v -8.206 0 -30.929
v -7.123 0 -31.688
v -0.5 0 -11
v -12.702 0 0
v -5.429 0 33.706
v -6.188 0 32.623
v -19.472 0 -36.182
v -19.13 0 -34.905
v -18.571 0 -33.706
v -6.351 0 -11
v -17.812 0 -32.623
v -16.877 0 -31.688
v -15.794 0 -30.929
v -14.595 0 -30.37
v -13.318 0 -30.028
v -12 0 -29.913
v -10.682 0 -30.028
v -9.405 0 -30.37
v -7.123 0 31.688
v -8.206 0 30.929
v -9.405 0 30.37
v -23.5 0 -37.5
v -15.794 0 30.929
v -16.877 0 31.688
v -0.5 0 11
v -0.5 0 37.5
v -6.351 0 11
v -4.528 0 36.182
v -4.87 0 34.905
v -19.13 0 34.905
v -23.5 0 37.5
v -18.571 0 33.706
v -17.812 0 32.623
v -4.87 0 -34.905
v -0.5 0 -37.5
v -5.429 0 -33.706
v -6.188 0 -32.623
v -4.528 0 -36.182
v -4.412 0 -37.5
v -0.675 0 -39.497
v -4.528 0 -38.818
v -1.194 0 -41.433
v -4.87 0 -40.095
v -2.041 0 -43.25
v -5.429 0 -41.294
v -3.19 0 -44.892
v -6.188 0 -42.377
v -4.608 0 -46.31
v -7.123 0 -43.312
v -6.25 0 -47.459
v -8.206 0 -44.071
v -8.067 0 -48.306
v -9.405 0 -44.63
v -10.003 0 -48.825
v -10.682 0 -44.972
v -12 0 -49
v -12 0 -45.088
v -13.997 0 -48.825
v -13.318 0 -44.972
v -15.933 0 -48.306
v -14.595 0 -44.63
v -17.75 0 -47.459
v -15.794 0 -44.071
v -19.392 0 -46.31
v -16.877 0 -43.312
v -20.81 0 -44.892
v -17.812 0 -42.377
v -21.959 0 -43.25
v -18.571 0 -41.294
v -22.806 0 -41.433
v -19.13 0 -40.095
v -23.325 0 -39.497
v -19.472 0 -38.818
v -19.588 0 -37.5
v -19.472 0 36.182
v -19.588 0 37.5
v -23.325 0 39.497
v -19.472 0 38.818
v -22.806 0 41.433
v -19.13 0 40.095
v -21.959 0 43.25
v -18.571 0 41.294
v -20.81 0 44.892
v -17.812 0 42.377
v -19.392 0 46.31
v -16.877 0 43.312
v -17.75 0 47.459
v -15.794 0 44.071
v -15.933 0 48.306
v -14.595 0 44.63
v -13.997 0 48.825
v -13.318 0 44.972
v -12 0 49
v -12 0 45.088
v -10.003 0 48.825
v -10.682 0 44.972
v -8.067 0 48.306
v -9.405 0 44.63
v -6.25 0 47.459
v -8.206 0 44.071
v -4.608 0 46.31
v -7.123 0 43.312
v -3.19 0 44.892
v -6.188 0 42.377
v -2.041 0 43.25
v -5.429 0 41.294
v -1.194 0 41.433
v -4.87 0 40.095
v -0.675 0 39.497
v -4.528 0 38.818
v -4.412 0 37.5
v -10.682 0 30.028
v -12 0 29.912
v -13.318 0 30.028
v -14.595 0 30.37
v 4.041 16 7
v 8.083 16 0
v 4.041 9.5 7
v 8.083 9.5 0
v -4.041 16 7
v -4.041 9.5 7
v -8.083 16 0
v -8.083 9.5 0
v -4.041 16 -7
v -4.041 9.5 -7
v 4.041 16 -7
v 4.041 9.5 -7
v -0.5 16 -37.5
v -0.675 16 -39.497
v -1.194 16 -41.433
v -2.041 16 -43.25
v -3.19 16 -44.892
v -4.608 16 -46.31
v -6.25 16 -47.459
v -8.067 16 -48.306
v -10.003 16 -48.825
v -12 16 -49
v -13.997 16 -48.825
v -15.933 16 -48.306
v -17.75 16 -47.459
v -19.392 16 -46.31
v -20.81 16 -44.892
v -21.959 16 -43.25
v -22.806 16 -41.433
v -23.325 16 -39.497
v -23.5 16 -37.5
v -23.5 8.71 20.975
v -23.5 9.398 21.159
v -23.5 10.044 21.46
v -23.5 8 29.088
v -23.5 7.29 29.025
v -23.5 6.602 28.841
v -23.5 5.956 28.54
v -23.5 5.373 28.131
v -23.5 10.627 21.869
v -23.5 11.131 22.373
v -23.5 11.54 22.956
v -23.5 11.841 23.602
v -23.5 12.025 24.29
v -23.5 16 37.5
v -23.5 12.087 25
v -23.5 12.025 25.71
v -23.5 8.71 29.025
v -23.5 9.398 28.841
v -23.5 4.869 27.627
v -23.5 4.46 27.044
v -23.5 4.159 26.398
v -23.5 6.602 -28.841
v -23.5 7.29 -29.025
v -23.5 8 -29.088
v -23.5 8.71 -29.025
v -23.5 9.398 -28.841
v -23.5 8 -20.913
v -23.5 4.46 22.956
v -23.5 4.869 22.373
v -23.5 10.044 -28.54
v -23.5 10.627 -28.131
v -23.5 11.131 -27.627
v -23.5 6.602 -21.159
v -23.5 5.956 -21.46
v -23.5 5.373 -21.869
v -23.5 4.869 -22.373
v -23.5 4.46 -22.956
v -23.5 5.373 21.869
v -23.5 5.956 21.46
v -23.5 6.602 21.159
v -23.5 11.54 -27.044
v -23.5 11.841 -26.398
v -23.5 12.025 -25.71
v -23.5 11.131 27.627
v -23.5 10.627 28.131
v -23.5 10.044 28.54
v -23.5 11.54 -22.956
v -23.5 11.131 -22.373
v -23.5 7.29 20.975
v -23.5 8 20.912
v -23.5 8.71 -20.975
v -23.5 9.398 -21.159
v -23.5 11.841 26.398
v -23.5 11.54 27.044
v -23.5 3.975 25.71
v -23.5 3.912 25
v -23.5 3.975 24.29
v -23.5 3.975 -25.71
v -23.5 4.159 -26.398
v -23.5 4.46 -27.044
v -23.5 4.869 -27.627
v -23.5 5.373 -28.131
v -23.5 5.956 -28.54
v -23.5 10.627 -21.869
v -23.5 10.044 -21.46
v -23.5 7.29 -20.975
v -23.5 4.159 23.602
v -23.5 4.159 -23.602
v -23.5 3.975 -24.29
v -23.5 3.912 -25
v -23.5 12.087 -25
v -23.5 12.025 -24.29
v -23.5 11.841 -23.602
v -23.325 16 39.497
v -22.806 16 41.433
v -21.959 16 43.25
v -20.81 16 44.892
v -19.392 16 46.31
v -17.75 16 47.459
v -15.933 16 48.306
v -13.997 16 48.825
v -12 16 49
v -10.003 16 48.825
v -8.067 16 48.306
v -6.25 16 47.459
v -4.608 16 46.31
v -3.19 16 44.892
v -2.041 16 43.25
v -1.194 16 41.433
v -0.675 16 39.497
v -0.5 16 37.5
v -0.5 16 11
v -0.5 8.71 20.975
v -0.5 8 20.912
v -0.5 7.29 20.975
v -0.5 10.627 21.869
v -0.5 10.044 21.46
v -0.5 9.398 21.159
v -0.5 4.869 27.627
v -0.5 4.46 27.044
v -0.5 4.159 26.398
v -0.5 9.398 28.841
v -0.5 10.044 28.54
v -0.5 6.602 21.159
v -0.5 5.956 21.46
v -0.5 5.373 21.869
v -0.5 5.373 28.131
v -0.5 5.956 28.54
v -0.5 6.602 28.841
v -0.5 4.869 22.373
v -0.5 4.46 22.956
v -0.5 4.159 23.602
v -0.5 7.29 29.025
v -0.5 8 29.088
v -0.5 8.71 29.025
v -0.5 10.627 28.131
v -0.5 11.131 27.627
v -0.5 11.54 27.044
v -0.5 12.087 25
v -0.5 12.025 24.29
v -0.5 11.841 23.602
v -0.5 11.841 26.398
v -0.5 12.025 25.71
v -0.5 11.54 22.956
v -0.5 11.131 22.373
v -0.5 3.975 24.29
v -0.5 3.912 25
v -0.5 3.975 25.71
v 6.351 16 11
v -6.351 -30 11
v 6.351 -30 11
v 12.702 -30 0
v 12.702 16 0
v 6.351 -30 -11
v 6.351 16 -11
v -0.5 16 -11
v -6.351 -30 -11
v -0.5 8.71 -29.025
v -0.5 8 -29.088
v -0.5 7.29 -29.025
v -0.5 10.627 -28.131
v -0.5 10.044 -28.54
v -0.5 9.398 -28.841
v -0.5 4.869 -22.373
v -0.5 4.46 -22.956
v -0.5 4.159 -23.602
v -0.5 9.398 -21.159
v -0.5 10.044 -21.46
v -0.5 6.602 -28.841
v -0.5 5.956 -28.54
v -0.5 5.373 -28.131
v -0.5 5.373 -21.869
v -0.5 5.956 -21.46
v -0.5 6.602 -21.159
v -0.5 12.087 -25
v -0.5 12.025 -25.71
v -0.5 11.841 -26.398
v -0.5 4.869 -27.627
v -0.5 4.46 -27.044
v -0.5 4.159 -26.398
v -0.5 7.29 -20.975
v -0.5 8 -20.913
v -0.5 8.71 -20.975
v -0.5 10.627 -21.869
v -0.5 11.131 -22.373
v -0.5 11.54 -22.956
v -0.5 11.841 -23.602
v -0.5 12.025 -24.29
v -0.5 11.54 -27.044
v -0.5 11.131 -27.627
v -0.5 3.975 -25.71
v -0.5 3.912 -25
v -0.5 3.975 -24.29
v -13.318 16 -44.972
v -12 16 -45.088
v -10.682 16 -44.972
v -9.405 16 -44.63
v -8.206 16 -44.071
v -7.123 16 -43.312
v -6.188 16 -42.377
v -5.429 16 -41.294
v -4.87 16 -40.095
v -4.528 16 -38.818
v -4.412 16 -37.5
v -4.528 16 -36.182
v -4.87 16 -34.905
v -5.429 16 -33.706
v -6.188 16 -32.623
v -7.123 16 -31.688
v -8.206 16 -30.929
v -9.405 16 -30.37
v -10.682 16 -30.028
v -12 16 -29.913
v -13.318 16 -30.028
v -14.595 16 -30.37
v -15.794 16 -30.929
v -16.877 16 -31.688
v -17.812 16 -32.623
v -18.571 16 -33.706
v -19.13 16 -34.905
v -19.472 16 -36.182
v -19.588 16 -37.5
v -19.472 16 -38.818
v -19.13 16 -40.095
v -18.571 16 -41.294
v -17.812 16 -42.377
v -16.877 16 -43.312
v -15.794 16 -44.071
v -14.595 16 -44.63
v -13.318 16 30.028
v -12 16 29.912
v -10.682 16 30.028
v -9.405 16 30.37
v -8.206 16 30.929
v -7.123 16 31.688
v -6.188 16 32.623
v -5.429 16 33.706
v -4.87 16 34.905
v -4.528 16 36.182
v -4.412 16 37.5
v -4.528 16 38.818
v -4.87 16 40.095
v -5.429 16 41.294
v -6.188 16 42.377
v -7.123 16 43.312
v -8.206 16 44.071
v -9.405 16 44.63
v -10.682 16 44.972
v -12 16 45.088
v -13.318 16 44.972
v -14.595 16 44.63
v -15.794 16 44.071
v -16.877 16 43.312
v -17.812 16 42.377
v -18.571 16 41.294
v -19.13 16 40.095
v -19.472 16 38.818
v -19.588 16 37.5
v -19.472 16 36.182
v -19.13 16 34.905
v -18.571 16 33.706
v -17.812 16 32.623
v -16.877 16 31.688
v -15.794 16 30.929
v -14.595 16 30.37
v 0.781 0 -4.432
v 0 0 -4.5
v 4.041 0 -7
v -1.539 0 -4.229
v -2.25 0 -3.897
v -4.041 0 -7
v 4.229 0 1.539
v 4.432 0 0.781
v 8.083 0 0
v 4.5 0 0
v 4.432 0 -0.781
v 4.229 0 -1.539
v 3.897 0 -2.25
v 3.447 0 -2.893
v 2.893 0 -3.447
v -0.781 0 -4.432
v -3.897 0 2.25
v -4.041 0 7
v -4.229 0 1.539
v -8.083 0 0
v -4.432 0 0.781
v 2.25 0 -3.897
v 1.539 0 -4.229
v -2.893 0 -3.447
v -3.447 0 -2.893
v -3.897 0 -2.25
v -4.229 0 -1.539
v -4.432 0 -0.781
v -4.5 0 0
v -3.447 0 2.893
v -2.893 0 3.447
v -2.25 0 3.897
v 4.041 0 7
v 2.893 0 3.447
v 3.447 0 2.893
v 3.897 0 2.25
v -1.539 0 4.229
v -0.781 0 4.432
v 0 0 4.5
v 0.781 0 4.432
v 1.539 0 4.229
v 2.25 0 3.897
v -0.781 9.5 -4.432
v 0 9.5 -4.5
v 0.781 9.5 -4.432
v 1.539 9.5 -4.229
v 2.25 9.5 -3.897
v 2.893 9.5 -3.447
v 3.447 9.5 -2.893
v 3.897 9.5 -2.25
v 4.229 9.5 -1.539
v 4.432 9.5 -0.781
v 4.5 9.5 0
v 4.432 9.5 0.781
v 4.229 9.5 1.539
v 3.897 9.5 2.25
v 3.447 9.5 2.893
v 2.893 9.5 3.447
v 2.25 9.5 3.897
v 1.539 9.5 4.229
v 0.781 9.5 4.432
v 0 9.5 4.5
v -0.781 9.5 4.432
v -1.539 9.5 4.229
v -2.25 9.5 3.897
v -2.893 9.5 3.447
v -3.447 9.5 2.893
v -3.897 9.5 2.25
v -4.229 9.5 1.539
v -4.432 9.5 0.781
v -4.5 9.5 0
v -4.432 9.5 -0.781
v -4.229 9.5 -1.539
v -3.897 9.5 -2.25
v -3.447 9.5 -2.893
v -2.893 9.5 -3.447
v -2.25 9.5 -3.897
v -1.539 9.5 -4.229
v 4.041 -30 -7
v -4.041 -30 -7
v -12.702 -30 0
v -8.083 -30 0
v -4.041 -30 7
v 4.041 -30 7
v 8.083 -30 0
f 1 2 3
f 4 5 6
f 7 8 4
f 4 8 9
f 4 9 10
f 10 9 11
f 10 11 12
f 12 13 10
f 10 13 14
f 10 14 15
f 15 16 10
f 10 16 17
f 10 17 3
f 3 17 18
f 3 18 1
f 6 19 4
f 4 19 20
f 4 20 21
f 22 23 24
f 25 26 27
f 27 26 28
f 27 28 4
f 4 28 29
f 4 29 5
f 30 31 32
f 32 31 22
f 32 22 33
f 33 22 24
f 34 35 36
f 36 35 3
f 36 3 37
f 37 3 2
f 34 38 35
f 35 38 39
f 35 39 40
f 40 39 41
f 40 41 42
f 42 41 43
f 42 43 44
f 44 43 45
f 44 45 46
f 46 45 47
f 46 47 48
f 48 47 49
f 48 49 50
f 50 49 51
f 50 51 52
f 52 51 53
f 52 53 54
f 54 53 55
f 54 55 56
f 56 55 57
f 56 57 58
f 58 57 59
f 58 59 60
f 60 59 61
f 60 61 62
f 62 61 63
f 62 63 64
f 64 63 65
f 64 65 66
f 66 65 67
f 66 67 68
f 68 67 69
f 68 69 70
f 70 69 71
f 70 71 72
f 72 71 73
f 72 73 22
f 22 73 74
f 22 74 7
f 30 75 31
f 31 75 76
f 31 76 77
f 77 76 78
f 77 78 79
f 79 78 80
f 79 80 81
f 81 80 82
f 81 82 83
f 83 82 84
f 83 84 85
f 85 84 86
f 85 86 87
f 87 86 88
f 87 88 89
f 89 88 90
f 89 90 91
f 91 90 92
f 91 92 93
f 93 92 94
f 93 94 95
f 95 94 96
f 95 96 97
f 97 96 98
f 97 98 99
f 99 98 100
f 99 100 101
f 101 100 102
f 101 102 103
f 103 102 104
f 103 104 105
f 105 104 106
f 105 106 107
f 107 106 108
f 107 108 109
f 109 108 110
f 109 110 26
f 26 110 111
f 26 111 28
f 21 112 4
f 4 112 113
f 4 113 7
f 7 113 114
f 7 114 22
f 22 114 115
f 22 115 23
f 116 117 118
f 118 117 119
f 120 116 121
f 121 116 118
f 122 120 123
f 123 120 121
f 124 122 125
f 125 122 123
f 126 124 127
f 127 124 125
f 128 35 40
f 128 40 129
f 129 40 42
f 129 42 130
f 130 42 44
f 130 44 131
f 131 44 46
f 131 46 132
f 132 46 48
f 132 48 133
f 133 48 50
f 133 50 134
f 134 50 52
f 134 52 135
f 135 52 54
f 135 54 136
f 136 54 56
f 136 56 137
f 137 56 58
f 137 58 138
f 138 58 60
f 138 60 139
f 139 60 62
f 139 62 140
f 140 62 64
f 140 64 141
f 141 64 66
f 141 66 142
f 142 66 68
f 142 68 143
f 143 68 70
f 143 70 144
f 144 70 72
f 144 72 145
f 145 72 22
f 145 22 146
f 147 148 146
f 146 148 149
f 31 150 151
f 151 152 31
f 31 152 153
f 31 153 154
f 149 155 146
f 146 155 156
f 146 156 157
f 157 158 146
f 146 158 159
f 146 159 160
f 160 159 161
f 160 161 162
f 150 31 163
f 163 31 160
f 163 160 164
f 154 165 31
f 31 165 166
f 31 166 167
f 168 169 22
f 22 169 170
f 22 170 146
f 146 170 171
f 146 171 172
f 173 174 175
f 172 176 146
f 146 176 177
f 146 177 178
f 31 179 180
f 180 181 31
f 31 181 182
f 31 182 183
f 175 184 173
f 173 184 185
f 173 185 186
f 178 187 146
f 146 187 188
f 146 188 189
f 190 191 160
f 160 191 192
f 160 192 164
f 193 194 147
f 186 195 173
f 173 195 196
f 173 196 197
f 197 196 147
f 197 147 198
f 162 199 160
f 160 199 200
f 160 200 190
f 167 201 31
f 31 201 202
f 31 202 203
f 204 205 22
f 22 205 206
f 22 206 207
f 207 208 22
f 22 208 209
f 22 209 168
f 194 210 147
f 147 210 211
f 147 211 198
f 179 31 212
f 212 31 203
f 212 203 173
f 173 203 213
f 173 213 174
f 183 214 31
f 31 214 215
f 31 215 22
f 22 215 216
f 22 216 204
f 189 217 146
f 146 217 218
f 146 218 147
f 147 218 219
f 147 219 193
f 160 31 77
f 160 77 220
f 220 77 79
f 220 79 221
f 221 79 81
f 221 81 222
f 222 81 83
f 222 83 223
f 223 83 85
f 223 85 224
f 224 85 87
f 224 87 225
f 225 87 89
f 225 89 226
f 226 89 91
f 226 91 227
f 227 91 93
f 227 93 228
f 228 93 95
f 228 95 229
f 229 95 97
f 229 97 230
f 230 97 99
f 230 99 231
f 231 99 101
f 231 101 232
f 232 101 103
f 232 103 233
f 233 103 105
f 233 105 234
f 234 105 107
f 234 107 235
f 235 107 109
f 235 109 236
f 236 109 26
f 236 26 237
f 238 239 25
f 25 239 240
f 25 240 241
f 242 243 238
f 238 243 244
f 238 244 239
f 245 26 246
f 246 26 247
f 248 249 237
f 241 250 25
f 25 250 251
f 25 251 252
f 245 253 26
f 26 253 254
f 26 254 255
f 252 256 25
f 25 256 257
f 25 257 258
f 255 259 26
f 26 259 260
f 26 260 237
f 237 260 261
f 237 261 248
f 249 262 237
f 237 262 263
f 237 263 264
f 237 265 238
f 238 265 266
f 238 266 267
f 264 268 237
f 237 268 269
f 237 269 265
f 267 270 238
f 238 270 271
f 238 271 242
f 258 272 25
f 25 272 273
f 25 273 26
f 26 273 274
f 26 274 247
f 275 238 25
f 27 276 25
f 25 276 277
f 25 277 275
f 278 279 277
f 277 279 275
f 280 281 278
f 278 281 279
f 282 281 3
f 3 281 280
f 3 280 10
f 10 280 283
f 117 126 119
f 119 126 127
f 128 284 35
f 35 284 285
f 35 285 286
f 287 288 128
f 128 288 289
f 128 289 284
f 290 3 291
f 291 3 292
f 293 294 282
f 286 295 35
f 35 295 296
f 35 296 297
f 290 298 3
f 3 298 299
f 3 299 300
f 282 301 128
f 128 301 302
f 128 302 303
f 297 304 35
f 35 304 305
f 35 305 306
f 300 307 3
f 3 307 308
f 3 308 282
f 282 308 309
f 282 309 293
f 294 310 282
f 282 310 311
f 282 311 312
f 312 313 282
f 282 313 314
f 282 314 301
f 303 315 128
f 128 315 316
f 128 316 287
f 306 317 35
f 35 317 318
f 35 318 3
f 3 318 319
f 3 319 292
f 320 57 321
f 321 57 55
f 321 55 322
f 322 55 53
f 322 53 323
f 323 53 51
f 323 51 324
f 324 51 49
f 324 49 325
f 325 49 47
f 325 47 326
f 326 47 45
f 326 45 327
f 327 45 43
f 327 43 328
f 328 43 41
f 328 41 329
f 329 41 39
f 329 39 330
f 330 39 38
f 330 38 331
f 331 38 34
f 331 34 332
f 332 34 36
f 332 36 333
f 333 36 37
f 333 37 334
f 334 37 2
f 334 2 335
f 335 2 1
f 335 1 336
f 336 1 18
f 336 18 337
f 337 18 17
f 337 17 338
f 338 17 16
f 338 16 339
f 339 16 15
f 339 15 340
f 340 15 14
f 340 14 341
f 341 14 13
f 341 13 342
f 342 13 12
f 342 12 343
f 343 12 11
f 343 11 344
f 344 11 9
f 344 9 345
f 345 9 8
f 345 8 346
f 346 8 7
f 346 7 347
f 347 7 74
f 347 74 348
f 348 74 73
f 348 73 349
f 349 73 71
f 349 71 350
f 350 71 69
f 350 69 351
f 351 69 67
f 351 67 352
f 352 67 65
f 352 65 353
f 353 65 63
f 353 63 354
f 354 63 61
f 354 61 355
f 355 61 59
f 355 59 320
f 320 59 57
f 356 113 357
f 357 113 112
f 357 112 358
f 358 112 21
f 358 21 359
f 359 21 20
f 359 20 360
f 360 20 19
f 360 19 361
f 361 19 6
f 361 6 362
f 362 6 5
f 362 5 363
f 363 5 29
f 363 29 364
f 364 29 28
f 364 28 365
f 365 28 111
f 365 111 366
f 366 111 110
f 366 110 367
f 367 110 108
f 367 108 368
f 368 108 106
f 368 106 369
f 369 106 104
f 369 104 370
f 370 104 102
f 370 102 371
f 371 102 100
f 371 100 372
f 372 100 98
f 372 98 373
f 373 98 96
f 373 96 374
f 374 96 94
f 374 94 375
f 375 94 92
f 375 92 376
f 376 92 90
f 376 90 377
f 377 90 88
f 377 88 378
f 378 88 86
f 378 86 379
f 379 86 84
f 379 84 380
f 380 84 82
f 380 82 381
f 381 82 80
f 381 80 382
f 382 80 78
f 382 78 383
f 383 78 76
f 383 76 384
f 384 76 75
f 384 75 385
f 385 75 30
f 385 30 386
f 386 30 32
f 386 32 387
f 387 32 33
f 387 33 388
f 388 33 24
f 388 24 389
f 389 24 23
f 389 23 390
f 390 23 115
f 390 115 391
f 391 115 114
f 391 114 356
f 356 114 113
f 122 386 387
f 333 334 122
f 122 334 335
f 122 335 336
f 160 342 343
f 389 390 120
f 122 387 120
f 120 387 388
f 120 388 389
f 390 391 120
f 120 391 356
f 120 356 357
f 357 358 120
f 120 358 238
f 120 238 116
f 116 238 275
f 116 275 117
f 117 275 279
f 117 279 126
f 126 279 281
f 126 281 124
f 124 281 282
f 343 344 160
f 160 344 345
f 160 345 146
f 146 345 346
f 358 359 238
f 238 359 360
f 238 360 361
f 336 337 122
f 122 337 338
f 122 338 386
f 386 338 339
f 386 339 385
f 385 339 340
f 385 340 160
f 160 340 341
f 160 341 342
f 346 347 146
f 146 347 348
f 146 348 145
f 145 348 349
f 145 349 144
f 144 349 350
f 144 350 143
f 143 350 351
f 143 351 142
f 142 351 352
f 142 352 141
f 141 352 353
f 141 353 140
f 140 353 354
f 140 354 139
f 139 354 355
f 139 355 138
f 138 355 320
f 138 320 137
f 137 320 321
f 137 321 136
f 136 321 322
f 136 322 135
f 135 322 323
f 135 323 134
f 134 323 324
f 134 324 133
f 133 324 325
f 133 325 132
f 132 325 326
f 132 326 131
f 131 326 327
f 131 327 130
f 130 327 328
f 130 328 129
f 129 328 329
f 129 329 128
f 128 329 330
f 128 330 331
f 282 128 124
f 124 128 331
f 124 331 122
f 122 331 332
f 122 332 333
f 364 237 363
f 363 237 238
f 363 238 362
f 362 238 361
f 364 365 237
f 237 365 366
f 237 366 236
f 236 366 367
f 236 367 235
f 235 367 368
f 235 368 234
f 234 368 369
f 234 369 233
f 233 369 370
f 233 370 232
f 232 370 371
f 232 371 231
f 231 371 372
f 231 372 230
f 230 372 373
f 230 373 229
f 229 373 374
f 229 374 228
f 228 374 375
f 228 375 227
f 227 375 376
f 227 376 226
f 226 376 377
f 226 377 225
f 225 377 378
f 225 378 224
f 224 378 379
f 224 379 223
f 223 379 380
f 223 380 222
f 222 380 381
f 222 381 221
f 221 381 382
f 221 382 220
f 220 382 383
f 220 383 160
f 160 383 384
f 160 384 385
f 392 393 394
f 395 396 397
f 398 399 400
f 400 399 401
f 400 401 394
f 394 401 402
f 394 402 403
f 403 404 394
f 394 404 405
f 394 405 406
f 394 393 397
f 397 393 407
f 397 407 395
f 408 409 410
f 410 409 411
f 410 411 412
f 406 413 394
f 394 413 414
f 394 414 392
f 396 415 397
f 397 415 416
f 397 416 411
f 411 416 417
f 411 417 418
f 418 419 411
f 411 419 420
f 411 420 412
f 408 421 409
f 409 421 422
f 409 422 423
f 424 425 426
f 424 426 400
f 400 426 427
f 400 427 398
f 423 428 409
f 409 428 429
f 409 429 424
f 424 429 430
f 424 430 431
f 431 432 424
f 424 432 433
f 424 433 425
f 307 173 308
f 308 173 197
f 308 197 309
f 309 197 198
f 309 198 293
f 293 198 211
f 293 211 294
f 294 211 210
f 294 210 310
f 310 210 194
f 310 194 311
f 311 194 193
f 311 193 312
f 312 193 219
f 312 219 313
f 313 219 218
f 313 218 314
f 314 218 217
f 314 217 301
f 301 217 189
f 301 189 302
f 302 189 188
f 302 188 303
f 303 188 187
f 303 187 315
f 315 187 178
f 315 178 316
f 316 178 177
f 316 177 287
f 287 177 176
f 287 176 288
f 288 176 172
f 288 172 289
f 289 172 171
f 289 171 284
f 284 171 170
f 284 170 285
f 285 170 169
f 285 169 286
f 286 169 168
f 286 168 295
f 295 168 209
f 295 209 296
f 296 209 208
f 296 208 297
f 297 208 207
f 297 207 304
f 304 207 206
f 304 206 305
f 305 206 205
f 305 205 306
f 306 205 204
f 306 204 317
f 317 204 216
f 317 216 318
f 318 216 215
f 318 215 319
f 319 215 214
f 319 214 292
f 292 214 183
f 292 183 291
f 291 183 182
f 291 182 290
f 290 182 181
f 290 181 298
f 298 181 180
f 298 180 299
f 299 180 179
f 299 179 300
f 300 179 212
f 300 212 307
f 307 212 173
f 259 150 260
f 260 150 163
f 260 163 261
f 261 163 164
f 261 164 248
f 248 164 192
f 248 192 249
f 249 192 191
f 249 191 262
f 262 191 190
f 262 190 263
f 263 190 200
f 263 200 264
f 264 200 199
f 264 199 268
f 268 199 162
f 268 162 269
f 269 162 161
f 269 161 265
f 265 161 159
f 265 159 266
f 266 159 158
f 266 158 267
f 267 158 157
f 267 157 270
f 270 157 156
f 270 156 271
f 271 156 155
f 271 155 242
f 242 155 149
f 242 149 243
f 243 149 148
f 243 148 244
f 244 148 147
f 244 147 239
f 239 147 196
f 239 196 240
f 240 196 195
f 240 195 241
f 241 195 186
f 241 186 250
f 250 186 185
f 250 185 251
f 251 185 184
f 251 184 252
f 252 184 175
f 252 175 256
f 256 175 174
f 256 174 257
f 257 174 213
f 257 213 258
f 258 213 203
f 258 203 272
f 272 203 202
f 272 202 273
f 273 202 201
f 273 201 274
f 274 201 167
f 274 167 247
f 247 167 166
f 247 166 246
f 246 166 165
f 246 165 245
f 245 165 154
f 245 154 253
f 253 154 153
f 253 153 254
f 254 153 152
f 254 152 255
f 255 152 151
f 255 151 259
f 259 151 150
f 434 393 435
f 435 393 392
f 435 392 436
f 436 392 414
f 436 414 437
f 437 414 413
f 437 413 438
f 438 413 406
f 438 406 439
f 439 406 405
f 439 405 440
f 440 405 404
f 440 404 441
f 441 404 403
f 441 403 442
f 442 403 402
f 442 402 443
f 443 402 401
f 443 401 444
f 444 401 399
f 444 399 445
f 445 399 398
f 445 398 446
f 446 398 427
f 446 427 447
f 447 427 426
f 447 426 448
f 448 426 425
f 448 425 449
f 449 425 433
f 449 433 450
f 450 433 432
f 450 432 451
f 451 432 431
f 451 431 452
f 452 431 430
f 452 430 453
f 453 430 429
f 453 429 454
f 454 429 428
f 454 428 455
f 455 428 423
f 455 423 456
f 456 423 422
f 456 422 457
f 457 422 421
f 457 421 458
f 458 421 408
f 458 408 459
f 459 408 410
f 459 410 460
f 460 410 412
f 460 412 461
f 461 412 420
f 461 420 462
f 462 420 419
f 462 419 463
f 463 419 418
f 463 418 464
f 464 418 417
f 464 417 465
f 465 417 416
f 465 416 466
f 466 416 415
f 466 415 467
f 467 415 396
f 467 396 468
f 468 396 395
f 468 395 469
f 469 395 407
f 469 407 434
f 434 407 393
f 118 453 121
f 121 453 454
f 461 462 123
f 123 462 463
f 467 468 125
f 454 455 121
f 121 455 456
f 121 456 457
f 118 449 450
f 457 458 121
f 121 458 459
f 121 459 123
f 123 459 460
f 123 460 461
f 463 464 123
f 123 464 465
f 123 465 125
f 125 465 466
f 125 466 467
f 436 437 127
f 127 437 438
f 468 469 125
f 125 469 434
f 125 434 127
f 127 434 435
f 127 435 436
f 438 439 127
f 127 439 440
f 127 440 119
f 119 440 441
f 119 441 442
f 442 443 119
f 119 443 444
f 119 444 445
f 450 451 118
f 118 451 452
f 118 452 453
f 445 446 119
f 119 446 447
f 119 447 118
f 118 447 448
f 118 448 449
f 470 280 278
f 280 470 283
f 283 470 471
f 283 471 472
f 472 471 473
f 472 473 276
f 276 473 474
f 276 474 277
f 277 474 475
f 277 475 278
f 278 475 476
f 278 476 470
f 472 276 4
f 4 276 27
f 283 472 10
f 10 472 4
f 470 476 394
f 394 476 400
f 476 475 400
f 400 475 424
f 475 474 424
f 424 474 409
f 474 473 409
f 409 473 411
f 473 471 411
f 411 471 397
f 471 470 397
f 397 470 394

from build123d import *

# Parameters (mm, degrees)
SKETCH1_R           = 7.5875
BOSS_EXTRUDE1_DEPTH = 16
SKETCH2_R           = 4.0875
CUT_EXTRUDE1_DEPTH  = 63.988598267
SKETCH1_6_R         = 4.5
BOSS_EXTRUDE2_DEPTH = 9.5
BOSS_EXTRUDE3_DEPTH = 30


with BuildPart() as part:
    # Sketch1 → Boss-Extrude1 (new body)
    with BuildSketch(Plane(origin=(0, 0, 0), x_dir=(1, 0, 0), z_dir=(0, 1, 0))):
        with BuildLine():
            Line((-23.5, -33), (-23.5, 33))
            Line((-23.5, 33), (-23.5, 37.5))
            ThreePointArc((-23.5, 37.5), (-12, 49), (-0.5, 37.5))
            Line((-0.5, 37.5), (-0.5, 33))
            Line((-0.5, 33), (-0.5, 11))
            Line((-0.5, 11), (6.350852961, 11))
            Line((6.350852961, 11), (12.701705922, 0))
            Line((12.701705922, 0), (6.350852961, -11))
            Line((6.350852961, -11), (-0.5, -11))
            Line((-0.5, -11), (-0.5, -33))
            Line((-0.5, -33), (-0.5, -37.5))
            ThreePointArc((-0.5, -37.5), (-12, -49), (-23.5, -37.5))
            Line((-23.5, -37.5), (-23.5, -33))
        make_face()
        with Locations(Location((-12, -37.5, 0), (0, 0, 270))):
            Circle(SKETCH1_R, mode=Mode.SUBTRACT)
        with Locations(Location((-12, 37.5, 0), (0, 0, 270))):
            Circle(SKETCH1_R, mode=Mode.SUBTRACT)
        Polygon((8.082903769, 0), (4.041451884, 7), (-4.041451884, 7), (-8.082903769, 0), (-4.041451884, -7), (4.041451884, -7), align=None, mode=Mode.SUBTRACT)
    extrude(amount=BOSS_EXTRUDE1_DEPTH)

    # Sketch2 → Cut-Extrude1 (cut, through all)
    with BuildSketch(Plane.ZY.offset(23.5)):
        with Locations((-25, 8)):
            Circle(SKETCH2_R)
        with Locations((25, 8)):
            Circle(SKETCH2_R)
    extrude(amount=-CUT_EXTRUDE1_DEPTH, mode=Mode.SUBTRACT)

    # Sketch1<6> → Boss-Extrude2 (add)
    with BuildSketch(Plane(origin=(0, 0, 0), x_dir=(1, 0, 0), z_dir=(0, 1, 0))):
        Polygon((-4.041451884, -7), (4.041451884, -7), (8.082903769, 0), (4.041451884, 7), (-4.041451884, 7), (-8.082903769, 0), align=None)
        with Locations(Location((0, 0, 0), (0, 0, 270))):
            Circle(SKETCH1_6_R, mode=Mode.SUBTRACT)
    extrude(amount=BOSS_EXTRUDE2_DEPTH)

    # Sketch4 → Boss-Extrude3 (add)
    with BuildSketch(Plane.XZ):
        Polygon((12.701705922, 0), (6.350852961, 11), (-6.350852961, 11), (-12.701705922, 0), (-6.350852961, -11), (6.350852961, -11), align=None)
        Polygon((8.082903769, 0), (4.041451884, 7), (-4.041451884, 7), (-8.082903769, 0), (-4.041451884, -7), (4.041451884, -7), align=None, mode=Mode.SUBTRACT)
    extrude(amount=BOSS_EXTRUDE3_DEPTH)


solid = part.part
